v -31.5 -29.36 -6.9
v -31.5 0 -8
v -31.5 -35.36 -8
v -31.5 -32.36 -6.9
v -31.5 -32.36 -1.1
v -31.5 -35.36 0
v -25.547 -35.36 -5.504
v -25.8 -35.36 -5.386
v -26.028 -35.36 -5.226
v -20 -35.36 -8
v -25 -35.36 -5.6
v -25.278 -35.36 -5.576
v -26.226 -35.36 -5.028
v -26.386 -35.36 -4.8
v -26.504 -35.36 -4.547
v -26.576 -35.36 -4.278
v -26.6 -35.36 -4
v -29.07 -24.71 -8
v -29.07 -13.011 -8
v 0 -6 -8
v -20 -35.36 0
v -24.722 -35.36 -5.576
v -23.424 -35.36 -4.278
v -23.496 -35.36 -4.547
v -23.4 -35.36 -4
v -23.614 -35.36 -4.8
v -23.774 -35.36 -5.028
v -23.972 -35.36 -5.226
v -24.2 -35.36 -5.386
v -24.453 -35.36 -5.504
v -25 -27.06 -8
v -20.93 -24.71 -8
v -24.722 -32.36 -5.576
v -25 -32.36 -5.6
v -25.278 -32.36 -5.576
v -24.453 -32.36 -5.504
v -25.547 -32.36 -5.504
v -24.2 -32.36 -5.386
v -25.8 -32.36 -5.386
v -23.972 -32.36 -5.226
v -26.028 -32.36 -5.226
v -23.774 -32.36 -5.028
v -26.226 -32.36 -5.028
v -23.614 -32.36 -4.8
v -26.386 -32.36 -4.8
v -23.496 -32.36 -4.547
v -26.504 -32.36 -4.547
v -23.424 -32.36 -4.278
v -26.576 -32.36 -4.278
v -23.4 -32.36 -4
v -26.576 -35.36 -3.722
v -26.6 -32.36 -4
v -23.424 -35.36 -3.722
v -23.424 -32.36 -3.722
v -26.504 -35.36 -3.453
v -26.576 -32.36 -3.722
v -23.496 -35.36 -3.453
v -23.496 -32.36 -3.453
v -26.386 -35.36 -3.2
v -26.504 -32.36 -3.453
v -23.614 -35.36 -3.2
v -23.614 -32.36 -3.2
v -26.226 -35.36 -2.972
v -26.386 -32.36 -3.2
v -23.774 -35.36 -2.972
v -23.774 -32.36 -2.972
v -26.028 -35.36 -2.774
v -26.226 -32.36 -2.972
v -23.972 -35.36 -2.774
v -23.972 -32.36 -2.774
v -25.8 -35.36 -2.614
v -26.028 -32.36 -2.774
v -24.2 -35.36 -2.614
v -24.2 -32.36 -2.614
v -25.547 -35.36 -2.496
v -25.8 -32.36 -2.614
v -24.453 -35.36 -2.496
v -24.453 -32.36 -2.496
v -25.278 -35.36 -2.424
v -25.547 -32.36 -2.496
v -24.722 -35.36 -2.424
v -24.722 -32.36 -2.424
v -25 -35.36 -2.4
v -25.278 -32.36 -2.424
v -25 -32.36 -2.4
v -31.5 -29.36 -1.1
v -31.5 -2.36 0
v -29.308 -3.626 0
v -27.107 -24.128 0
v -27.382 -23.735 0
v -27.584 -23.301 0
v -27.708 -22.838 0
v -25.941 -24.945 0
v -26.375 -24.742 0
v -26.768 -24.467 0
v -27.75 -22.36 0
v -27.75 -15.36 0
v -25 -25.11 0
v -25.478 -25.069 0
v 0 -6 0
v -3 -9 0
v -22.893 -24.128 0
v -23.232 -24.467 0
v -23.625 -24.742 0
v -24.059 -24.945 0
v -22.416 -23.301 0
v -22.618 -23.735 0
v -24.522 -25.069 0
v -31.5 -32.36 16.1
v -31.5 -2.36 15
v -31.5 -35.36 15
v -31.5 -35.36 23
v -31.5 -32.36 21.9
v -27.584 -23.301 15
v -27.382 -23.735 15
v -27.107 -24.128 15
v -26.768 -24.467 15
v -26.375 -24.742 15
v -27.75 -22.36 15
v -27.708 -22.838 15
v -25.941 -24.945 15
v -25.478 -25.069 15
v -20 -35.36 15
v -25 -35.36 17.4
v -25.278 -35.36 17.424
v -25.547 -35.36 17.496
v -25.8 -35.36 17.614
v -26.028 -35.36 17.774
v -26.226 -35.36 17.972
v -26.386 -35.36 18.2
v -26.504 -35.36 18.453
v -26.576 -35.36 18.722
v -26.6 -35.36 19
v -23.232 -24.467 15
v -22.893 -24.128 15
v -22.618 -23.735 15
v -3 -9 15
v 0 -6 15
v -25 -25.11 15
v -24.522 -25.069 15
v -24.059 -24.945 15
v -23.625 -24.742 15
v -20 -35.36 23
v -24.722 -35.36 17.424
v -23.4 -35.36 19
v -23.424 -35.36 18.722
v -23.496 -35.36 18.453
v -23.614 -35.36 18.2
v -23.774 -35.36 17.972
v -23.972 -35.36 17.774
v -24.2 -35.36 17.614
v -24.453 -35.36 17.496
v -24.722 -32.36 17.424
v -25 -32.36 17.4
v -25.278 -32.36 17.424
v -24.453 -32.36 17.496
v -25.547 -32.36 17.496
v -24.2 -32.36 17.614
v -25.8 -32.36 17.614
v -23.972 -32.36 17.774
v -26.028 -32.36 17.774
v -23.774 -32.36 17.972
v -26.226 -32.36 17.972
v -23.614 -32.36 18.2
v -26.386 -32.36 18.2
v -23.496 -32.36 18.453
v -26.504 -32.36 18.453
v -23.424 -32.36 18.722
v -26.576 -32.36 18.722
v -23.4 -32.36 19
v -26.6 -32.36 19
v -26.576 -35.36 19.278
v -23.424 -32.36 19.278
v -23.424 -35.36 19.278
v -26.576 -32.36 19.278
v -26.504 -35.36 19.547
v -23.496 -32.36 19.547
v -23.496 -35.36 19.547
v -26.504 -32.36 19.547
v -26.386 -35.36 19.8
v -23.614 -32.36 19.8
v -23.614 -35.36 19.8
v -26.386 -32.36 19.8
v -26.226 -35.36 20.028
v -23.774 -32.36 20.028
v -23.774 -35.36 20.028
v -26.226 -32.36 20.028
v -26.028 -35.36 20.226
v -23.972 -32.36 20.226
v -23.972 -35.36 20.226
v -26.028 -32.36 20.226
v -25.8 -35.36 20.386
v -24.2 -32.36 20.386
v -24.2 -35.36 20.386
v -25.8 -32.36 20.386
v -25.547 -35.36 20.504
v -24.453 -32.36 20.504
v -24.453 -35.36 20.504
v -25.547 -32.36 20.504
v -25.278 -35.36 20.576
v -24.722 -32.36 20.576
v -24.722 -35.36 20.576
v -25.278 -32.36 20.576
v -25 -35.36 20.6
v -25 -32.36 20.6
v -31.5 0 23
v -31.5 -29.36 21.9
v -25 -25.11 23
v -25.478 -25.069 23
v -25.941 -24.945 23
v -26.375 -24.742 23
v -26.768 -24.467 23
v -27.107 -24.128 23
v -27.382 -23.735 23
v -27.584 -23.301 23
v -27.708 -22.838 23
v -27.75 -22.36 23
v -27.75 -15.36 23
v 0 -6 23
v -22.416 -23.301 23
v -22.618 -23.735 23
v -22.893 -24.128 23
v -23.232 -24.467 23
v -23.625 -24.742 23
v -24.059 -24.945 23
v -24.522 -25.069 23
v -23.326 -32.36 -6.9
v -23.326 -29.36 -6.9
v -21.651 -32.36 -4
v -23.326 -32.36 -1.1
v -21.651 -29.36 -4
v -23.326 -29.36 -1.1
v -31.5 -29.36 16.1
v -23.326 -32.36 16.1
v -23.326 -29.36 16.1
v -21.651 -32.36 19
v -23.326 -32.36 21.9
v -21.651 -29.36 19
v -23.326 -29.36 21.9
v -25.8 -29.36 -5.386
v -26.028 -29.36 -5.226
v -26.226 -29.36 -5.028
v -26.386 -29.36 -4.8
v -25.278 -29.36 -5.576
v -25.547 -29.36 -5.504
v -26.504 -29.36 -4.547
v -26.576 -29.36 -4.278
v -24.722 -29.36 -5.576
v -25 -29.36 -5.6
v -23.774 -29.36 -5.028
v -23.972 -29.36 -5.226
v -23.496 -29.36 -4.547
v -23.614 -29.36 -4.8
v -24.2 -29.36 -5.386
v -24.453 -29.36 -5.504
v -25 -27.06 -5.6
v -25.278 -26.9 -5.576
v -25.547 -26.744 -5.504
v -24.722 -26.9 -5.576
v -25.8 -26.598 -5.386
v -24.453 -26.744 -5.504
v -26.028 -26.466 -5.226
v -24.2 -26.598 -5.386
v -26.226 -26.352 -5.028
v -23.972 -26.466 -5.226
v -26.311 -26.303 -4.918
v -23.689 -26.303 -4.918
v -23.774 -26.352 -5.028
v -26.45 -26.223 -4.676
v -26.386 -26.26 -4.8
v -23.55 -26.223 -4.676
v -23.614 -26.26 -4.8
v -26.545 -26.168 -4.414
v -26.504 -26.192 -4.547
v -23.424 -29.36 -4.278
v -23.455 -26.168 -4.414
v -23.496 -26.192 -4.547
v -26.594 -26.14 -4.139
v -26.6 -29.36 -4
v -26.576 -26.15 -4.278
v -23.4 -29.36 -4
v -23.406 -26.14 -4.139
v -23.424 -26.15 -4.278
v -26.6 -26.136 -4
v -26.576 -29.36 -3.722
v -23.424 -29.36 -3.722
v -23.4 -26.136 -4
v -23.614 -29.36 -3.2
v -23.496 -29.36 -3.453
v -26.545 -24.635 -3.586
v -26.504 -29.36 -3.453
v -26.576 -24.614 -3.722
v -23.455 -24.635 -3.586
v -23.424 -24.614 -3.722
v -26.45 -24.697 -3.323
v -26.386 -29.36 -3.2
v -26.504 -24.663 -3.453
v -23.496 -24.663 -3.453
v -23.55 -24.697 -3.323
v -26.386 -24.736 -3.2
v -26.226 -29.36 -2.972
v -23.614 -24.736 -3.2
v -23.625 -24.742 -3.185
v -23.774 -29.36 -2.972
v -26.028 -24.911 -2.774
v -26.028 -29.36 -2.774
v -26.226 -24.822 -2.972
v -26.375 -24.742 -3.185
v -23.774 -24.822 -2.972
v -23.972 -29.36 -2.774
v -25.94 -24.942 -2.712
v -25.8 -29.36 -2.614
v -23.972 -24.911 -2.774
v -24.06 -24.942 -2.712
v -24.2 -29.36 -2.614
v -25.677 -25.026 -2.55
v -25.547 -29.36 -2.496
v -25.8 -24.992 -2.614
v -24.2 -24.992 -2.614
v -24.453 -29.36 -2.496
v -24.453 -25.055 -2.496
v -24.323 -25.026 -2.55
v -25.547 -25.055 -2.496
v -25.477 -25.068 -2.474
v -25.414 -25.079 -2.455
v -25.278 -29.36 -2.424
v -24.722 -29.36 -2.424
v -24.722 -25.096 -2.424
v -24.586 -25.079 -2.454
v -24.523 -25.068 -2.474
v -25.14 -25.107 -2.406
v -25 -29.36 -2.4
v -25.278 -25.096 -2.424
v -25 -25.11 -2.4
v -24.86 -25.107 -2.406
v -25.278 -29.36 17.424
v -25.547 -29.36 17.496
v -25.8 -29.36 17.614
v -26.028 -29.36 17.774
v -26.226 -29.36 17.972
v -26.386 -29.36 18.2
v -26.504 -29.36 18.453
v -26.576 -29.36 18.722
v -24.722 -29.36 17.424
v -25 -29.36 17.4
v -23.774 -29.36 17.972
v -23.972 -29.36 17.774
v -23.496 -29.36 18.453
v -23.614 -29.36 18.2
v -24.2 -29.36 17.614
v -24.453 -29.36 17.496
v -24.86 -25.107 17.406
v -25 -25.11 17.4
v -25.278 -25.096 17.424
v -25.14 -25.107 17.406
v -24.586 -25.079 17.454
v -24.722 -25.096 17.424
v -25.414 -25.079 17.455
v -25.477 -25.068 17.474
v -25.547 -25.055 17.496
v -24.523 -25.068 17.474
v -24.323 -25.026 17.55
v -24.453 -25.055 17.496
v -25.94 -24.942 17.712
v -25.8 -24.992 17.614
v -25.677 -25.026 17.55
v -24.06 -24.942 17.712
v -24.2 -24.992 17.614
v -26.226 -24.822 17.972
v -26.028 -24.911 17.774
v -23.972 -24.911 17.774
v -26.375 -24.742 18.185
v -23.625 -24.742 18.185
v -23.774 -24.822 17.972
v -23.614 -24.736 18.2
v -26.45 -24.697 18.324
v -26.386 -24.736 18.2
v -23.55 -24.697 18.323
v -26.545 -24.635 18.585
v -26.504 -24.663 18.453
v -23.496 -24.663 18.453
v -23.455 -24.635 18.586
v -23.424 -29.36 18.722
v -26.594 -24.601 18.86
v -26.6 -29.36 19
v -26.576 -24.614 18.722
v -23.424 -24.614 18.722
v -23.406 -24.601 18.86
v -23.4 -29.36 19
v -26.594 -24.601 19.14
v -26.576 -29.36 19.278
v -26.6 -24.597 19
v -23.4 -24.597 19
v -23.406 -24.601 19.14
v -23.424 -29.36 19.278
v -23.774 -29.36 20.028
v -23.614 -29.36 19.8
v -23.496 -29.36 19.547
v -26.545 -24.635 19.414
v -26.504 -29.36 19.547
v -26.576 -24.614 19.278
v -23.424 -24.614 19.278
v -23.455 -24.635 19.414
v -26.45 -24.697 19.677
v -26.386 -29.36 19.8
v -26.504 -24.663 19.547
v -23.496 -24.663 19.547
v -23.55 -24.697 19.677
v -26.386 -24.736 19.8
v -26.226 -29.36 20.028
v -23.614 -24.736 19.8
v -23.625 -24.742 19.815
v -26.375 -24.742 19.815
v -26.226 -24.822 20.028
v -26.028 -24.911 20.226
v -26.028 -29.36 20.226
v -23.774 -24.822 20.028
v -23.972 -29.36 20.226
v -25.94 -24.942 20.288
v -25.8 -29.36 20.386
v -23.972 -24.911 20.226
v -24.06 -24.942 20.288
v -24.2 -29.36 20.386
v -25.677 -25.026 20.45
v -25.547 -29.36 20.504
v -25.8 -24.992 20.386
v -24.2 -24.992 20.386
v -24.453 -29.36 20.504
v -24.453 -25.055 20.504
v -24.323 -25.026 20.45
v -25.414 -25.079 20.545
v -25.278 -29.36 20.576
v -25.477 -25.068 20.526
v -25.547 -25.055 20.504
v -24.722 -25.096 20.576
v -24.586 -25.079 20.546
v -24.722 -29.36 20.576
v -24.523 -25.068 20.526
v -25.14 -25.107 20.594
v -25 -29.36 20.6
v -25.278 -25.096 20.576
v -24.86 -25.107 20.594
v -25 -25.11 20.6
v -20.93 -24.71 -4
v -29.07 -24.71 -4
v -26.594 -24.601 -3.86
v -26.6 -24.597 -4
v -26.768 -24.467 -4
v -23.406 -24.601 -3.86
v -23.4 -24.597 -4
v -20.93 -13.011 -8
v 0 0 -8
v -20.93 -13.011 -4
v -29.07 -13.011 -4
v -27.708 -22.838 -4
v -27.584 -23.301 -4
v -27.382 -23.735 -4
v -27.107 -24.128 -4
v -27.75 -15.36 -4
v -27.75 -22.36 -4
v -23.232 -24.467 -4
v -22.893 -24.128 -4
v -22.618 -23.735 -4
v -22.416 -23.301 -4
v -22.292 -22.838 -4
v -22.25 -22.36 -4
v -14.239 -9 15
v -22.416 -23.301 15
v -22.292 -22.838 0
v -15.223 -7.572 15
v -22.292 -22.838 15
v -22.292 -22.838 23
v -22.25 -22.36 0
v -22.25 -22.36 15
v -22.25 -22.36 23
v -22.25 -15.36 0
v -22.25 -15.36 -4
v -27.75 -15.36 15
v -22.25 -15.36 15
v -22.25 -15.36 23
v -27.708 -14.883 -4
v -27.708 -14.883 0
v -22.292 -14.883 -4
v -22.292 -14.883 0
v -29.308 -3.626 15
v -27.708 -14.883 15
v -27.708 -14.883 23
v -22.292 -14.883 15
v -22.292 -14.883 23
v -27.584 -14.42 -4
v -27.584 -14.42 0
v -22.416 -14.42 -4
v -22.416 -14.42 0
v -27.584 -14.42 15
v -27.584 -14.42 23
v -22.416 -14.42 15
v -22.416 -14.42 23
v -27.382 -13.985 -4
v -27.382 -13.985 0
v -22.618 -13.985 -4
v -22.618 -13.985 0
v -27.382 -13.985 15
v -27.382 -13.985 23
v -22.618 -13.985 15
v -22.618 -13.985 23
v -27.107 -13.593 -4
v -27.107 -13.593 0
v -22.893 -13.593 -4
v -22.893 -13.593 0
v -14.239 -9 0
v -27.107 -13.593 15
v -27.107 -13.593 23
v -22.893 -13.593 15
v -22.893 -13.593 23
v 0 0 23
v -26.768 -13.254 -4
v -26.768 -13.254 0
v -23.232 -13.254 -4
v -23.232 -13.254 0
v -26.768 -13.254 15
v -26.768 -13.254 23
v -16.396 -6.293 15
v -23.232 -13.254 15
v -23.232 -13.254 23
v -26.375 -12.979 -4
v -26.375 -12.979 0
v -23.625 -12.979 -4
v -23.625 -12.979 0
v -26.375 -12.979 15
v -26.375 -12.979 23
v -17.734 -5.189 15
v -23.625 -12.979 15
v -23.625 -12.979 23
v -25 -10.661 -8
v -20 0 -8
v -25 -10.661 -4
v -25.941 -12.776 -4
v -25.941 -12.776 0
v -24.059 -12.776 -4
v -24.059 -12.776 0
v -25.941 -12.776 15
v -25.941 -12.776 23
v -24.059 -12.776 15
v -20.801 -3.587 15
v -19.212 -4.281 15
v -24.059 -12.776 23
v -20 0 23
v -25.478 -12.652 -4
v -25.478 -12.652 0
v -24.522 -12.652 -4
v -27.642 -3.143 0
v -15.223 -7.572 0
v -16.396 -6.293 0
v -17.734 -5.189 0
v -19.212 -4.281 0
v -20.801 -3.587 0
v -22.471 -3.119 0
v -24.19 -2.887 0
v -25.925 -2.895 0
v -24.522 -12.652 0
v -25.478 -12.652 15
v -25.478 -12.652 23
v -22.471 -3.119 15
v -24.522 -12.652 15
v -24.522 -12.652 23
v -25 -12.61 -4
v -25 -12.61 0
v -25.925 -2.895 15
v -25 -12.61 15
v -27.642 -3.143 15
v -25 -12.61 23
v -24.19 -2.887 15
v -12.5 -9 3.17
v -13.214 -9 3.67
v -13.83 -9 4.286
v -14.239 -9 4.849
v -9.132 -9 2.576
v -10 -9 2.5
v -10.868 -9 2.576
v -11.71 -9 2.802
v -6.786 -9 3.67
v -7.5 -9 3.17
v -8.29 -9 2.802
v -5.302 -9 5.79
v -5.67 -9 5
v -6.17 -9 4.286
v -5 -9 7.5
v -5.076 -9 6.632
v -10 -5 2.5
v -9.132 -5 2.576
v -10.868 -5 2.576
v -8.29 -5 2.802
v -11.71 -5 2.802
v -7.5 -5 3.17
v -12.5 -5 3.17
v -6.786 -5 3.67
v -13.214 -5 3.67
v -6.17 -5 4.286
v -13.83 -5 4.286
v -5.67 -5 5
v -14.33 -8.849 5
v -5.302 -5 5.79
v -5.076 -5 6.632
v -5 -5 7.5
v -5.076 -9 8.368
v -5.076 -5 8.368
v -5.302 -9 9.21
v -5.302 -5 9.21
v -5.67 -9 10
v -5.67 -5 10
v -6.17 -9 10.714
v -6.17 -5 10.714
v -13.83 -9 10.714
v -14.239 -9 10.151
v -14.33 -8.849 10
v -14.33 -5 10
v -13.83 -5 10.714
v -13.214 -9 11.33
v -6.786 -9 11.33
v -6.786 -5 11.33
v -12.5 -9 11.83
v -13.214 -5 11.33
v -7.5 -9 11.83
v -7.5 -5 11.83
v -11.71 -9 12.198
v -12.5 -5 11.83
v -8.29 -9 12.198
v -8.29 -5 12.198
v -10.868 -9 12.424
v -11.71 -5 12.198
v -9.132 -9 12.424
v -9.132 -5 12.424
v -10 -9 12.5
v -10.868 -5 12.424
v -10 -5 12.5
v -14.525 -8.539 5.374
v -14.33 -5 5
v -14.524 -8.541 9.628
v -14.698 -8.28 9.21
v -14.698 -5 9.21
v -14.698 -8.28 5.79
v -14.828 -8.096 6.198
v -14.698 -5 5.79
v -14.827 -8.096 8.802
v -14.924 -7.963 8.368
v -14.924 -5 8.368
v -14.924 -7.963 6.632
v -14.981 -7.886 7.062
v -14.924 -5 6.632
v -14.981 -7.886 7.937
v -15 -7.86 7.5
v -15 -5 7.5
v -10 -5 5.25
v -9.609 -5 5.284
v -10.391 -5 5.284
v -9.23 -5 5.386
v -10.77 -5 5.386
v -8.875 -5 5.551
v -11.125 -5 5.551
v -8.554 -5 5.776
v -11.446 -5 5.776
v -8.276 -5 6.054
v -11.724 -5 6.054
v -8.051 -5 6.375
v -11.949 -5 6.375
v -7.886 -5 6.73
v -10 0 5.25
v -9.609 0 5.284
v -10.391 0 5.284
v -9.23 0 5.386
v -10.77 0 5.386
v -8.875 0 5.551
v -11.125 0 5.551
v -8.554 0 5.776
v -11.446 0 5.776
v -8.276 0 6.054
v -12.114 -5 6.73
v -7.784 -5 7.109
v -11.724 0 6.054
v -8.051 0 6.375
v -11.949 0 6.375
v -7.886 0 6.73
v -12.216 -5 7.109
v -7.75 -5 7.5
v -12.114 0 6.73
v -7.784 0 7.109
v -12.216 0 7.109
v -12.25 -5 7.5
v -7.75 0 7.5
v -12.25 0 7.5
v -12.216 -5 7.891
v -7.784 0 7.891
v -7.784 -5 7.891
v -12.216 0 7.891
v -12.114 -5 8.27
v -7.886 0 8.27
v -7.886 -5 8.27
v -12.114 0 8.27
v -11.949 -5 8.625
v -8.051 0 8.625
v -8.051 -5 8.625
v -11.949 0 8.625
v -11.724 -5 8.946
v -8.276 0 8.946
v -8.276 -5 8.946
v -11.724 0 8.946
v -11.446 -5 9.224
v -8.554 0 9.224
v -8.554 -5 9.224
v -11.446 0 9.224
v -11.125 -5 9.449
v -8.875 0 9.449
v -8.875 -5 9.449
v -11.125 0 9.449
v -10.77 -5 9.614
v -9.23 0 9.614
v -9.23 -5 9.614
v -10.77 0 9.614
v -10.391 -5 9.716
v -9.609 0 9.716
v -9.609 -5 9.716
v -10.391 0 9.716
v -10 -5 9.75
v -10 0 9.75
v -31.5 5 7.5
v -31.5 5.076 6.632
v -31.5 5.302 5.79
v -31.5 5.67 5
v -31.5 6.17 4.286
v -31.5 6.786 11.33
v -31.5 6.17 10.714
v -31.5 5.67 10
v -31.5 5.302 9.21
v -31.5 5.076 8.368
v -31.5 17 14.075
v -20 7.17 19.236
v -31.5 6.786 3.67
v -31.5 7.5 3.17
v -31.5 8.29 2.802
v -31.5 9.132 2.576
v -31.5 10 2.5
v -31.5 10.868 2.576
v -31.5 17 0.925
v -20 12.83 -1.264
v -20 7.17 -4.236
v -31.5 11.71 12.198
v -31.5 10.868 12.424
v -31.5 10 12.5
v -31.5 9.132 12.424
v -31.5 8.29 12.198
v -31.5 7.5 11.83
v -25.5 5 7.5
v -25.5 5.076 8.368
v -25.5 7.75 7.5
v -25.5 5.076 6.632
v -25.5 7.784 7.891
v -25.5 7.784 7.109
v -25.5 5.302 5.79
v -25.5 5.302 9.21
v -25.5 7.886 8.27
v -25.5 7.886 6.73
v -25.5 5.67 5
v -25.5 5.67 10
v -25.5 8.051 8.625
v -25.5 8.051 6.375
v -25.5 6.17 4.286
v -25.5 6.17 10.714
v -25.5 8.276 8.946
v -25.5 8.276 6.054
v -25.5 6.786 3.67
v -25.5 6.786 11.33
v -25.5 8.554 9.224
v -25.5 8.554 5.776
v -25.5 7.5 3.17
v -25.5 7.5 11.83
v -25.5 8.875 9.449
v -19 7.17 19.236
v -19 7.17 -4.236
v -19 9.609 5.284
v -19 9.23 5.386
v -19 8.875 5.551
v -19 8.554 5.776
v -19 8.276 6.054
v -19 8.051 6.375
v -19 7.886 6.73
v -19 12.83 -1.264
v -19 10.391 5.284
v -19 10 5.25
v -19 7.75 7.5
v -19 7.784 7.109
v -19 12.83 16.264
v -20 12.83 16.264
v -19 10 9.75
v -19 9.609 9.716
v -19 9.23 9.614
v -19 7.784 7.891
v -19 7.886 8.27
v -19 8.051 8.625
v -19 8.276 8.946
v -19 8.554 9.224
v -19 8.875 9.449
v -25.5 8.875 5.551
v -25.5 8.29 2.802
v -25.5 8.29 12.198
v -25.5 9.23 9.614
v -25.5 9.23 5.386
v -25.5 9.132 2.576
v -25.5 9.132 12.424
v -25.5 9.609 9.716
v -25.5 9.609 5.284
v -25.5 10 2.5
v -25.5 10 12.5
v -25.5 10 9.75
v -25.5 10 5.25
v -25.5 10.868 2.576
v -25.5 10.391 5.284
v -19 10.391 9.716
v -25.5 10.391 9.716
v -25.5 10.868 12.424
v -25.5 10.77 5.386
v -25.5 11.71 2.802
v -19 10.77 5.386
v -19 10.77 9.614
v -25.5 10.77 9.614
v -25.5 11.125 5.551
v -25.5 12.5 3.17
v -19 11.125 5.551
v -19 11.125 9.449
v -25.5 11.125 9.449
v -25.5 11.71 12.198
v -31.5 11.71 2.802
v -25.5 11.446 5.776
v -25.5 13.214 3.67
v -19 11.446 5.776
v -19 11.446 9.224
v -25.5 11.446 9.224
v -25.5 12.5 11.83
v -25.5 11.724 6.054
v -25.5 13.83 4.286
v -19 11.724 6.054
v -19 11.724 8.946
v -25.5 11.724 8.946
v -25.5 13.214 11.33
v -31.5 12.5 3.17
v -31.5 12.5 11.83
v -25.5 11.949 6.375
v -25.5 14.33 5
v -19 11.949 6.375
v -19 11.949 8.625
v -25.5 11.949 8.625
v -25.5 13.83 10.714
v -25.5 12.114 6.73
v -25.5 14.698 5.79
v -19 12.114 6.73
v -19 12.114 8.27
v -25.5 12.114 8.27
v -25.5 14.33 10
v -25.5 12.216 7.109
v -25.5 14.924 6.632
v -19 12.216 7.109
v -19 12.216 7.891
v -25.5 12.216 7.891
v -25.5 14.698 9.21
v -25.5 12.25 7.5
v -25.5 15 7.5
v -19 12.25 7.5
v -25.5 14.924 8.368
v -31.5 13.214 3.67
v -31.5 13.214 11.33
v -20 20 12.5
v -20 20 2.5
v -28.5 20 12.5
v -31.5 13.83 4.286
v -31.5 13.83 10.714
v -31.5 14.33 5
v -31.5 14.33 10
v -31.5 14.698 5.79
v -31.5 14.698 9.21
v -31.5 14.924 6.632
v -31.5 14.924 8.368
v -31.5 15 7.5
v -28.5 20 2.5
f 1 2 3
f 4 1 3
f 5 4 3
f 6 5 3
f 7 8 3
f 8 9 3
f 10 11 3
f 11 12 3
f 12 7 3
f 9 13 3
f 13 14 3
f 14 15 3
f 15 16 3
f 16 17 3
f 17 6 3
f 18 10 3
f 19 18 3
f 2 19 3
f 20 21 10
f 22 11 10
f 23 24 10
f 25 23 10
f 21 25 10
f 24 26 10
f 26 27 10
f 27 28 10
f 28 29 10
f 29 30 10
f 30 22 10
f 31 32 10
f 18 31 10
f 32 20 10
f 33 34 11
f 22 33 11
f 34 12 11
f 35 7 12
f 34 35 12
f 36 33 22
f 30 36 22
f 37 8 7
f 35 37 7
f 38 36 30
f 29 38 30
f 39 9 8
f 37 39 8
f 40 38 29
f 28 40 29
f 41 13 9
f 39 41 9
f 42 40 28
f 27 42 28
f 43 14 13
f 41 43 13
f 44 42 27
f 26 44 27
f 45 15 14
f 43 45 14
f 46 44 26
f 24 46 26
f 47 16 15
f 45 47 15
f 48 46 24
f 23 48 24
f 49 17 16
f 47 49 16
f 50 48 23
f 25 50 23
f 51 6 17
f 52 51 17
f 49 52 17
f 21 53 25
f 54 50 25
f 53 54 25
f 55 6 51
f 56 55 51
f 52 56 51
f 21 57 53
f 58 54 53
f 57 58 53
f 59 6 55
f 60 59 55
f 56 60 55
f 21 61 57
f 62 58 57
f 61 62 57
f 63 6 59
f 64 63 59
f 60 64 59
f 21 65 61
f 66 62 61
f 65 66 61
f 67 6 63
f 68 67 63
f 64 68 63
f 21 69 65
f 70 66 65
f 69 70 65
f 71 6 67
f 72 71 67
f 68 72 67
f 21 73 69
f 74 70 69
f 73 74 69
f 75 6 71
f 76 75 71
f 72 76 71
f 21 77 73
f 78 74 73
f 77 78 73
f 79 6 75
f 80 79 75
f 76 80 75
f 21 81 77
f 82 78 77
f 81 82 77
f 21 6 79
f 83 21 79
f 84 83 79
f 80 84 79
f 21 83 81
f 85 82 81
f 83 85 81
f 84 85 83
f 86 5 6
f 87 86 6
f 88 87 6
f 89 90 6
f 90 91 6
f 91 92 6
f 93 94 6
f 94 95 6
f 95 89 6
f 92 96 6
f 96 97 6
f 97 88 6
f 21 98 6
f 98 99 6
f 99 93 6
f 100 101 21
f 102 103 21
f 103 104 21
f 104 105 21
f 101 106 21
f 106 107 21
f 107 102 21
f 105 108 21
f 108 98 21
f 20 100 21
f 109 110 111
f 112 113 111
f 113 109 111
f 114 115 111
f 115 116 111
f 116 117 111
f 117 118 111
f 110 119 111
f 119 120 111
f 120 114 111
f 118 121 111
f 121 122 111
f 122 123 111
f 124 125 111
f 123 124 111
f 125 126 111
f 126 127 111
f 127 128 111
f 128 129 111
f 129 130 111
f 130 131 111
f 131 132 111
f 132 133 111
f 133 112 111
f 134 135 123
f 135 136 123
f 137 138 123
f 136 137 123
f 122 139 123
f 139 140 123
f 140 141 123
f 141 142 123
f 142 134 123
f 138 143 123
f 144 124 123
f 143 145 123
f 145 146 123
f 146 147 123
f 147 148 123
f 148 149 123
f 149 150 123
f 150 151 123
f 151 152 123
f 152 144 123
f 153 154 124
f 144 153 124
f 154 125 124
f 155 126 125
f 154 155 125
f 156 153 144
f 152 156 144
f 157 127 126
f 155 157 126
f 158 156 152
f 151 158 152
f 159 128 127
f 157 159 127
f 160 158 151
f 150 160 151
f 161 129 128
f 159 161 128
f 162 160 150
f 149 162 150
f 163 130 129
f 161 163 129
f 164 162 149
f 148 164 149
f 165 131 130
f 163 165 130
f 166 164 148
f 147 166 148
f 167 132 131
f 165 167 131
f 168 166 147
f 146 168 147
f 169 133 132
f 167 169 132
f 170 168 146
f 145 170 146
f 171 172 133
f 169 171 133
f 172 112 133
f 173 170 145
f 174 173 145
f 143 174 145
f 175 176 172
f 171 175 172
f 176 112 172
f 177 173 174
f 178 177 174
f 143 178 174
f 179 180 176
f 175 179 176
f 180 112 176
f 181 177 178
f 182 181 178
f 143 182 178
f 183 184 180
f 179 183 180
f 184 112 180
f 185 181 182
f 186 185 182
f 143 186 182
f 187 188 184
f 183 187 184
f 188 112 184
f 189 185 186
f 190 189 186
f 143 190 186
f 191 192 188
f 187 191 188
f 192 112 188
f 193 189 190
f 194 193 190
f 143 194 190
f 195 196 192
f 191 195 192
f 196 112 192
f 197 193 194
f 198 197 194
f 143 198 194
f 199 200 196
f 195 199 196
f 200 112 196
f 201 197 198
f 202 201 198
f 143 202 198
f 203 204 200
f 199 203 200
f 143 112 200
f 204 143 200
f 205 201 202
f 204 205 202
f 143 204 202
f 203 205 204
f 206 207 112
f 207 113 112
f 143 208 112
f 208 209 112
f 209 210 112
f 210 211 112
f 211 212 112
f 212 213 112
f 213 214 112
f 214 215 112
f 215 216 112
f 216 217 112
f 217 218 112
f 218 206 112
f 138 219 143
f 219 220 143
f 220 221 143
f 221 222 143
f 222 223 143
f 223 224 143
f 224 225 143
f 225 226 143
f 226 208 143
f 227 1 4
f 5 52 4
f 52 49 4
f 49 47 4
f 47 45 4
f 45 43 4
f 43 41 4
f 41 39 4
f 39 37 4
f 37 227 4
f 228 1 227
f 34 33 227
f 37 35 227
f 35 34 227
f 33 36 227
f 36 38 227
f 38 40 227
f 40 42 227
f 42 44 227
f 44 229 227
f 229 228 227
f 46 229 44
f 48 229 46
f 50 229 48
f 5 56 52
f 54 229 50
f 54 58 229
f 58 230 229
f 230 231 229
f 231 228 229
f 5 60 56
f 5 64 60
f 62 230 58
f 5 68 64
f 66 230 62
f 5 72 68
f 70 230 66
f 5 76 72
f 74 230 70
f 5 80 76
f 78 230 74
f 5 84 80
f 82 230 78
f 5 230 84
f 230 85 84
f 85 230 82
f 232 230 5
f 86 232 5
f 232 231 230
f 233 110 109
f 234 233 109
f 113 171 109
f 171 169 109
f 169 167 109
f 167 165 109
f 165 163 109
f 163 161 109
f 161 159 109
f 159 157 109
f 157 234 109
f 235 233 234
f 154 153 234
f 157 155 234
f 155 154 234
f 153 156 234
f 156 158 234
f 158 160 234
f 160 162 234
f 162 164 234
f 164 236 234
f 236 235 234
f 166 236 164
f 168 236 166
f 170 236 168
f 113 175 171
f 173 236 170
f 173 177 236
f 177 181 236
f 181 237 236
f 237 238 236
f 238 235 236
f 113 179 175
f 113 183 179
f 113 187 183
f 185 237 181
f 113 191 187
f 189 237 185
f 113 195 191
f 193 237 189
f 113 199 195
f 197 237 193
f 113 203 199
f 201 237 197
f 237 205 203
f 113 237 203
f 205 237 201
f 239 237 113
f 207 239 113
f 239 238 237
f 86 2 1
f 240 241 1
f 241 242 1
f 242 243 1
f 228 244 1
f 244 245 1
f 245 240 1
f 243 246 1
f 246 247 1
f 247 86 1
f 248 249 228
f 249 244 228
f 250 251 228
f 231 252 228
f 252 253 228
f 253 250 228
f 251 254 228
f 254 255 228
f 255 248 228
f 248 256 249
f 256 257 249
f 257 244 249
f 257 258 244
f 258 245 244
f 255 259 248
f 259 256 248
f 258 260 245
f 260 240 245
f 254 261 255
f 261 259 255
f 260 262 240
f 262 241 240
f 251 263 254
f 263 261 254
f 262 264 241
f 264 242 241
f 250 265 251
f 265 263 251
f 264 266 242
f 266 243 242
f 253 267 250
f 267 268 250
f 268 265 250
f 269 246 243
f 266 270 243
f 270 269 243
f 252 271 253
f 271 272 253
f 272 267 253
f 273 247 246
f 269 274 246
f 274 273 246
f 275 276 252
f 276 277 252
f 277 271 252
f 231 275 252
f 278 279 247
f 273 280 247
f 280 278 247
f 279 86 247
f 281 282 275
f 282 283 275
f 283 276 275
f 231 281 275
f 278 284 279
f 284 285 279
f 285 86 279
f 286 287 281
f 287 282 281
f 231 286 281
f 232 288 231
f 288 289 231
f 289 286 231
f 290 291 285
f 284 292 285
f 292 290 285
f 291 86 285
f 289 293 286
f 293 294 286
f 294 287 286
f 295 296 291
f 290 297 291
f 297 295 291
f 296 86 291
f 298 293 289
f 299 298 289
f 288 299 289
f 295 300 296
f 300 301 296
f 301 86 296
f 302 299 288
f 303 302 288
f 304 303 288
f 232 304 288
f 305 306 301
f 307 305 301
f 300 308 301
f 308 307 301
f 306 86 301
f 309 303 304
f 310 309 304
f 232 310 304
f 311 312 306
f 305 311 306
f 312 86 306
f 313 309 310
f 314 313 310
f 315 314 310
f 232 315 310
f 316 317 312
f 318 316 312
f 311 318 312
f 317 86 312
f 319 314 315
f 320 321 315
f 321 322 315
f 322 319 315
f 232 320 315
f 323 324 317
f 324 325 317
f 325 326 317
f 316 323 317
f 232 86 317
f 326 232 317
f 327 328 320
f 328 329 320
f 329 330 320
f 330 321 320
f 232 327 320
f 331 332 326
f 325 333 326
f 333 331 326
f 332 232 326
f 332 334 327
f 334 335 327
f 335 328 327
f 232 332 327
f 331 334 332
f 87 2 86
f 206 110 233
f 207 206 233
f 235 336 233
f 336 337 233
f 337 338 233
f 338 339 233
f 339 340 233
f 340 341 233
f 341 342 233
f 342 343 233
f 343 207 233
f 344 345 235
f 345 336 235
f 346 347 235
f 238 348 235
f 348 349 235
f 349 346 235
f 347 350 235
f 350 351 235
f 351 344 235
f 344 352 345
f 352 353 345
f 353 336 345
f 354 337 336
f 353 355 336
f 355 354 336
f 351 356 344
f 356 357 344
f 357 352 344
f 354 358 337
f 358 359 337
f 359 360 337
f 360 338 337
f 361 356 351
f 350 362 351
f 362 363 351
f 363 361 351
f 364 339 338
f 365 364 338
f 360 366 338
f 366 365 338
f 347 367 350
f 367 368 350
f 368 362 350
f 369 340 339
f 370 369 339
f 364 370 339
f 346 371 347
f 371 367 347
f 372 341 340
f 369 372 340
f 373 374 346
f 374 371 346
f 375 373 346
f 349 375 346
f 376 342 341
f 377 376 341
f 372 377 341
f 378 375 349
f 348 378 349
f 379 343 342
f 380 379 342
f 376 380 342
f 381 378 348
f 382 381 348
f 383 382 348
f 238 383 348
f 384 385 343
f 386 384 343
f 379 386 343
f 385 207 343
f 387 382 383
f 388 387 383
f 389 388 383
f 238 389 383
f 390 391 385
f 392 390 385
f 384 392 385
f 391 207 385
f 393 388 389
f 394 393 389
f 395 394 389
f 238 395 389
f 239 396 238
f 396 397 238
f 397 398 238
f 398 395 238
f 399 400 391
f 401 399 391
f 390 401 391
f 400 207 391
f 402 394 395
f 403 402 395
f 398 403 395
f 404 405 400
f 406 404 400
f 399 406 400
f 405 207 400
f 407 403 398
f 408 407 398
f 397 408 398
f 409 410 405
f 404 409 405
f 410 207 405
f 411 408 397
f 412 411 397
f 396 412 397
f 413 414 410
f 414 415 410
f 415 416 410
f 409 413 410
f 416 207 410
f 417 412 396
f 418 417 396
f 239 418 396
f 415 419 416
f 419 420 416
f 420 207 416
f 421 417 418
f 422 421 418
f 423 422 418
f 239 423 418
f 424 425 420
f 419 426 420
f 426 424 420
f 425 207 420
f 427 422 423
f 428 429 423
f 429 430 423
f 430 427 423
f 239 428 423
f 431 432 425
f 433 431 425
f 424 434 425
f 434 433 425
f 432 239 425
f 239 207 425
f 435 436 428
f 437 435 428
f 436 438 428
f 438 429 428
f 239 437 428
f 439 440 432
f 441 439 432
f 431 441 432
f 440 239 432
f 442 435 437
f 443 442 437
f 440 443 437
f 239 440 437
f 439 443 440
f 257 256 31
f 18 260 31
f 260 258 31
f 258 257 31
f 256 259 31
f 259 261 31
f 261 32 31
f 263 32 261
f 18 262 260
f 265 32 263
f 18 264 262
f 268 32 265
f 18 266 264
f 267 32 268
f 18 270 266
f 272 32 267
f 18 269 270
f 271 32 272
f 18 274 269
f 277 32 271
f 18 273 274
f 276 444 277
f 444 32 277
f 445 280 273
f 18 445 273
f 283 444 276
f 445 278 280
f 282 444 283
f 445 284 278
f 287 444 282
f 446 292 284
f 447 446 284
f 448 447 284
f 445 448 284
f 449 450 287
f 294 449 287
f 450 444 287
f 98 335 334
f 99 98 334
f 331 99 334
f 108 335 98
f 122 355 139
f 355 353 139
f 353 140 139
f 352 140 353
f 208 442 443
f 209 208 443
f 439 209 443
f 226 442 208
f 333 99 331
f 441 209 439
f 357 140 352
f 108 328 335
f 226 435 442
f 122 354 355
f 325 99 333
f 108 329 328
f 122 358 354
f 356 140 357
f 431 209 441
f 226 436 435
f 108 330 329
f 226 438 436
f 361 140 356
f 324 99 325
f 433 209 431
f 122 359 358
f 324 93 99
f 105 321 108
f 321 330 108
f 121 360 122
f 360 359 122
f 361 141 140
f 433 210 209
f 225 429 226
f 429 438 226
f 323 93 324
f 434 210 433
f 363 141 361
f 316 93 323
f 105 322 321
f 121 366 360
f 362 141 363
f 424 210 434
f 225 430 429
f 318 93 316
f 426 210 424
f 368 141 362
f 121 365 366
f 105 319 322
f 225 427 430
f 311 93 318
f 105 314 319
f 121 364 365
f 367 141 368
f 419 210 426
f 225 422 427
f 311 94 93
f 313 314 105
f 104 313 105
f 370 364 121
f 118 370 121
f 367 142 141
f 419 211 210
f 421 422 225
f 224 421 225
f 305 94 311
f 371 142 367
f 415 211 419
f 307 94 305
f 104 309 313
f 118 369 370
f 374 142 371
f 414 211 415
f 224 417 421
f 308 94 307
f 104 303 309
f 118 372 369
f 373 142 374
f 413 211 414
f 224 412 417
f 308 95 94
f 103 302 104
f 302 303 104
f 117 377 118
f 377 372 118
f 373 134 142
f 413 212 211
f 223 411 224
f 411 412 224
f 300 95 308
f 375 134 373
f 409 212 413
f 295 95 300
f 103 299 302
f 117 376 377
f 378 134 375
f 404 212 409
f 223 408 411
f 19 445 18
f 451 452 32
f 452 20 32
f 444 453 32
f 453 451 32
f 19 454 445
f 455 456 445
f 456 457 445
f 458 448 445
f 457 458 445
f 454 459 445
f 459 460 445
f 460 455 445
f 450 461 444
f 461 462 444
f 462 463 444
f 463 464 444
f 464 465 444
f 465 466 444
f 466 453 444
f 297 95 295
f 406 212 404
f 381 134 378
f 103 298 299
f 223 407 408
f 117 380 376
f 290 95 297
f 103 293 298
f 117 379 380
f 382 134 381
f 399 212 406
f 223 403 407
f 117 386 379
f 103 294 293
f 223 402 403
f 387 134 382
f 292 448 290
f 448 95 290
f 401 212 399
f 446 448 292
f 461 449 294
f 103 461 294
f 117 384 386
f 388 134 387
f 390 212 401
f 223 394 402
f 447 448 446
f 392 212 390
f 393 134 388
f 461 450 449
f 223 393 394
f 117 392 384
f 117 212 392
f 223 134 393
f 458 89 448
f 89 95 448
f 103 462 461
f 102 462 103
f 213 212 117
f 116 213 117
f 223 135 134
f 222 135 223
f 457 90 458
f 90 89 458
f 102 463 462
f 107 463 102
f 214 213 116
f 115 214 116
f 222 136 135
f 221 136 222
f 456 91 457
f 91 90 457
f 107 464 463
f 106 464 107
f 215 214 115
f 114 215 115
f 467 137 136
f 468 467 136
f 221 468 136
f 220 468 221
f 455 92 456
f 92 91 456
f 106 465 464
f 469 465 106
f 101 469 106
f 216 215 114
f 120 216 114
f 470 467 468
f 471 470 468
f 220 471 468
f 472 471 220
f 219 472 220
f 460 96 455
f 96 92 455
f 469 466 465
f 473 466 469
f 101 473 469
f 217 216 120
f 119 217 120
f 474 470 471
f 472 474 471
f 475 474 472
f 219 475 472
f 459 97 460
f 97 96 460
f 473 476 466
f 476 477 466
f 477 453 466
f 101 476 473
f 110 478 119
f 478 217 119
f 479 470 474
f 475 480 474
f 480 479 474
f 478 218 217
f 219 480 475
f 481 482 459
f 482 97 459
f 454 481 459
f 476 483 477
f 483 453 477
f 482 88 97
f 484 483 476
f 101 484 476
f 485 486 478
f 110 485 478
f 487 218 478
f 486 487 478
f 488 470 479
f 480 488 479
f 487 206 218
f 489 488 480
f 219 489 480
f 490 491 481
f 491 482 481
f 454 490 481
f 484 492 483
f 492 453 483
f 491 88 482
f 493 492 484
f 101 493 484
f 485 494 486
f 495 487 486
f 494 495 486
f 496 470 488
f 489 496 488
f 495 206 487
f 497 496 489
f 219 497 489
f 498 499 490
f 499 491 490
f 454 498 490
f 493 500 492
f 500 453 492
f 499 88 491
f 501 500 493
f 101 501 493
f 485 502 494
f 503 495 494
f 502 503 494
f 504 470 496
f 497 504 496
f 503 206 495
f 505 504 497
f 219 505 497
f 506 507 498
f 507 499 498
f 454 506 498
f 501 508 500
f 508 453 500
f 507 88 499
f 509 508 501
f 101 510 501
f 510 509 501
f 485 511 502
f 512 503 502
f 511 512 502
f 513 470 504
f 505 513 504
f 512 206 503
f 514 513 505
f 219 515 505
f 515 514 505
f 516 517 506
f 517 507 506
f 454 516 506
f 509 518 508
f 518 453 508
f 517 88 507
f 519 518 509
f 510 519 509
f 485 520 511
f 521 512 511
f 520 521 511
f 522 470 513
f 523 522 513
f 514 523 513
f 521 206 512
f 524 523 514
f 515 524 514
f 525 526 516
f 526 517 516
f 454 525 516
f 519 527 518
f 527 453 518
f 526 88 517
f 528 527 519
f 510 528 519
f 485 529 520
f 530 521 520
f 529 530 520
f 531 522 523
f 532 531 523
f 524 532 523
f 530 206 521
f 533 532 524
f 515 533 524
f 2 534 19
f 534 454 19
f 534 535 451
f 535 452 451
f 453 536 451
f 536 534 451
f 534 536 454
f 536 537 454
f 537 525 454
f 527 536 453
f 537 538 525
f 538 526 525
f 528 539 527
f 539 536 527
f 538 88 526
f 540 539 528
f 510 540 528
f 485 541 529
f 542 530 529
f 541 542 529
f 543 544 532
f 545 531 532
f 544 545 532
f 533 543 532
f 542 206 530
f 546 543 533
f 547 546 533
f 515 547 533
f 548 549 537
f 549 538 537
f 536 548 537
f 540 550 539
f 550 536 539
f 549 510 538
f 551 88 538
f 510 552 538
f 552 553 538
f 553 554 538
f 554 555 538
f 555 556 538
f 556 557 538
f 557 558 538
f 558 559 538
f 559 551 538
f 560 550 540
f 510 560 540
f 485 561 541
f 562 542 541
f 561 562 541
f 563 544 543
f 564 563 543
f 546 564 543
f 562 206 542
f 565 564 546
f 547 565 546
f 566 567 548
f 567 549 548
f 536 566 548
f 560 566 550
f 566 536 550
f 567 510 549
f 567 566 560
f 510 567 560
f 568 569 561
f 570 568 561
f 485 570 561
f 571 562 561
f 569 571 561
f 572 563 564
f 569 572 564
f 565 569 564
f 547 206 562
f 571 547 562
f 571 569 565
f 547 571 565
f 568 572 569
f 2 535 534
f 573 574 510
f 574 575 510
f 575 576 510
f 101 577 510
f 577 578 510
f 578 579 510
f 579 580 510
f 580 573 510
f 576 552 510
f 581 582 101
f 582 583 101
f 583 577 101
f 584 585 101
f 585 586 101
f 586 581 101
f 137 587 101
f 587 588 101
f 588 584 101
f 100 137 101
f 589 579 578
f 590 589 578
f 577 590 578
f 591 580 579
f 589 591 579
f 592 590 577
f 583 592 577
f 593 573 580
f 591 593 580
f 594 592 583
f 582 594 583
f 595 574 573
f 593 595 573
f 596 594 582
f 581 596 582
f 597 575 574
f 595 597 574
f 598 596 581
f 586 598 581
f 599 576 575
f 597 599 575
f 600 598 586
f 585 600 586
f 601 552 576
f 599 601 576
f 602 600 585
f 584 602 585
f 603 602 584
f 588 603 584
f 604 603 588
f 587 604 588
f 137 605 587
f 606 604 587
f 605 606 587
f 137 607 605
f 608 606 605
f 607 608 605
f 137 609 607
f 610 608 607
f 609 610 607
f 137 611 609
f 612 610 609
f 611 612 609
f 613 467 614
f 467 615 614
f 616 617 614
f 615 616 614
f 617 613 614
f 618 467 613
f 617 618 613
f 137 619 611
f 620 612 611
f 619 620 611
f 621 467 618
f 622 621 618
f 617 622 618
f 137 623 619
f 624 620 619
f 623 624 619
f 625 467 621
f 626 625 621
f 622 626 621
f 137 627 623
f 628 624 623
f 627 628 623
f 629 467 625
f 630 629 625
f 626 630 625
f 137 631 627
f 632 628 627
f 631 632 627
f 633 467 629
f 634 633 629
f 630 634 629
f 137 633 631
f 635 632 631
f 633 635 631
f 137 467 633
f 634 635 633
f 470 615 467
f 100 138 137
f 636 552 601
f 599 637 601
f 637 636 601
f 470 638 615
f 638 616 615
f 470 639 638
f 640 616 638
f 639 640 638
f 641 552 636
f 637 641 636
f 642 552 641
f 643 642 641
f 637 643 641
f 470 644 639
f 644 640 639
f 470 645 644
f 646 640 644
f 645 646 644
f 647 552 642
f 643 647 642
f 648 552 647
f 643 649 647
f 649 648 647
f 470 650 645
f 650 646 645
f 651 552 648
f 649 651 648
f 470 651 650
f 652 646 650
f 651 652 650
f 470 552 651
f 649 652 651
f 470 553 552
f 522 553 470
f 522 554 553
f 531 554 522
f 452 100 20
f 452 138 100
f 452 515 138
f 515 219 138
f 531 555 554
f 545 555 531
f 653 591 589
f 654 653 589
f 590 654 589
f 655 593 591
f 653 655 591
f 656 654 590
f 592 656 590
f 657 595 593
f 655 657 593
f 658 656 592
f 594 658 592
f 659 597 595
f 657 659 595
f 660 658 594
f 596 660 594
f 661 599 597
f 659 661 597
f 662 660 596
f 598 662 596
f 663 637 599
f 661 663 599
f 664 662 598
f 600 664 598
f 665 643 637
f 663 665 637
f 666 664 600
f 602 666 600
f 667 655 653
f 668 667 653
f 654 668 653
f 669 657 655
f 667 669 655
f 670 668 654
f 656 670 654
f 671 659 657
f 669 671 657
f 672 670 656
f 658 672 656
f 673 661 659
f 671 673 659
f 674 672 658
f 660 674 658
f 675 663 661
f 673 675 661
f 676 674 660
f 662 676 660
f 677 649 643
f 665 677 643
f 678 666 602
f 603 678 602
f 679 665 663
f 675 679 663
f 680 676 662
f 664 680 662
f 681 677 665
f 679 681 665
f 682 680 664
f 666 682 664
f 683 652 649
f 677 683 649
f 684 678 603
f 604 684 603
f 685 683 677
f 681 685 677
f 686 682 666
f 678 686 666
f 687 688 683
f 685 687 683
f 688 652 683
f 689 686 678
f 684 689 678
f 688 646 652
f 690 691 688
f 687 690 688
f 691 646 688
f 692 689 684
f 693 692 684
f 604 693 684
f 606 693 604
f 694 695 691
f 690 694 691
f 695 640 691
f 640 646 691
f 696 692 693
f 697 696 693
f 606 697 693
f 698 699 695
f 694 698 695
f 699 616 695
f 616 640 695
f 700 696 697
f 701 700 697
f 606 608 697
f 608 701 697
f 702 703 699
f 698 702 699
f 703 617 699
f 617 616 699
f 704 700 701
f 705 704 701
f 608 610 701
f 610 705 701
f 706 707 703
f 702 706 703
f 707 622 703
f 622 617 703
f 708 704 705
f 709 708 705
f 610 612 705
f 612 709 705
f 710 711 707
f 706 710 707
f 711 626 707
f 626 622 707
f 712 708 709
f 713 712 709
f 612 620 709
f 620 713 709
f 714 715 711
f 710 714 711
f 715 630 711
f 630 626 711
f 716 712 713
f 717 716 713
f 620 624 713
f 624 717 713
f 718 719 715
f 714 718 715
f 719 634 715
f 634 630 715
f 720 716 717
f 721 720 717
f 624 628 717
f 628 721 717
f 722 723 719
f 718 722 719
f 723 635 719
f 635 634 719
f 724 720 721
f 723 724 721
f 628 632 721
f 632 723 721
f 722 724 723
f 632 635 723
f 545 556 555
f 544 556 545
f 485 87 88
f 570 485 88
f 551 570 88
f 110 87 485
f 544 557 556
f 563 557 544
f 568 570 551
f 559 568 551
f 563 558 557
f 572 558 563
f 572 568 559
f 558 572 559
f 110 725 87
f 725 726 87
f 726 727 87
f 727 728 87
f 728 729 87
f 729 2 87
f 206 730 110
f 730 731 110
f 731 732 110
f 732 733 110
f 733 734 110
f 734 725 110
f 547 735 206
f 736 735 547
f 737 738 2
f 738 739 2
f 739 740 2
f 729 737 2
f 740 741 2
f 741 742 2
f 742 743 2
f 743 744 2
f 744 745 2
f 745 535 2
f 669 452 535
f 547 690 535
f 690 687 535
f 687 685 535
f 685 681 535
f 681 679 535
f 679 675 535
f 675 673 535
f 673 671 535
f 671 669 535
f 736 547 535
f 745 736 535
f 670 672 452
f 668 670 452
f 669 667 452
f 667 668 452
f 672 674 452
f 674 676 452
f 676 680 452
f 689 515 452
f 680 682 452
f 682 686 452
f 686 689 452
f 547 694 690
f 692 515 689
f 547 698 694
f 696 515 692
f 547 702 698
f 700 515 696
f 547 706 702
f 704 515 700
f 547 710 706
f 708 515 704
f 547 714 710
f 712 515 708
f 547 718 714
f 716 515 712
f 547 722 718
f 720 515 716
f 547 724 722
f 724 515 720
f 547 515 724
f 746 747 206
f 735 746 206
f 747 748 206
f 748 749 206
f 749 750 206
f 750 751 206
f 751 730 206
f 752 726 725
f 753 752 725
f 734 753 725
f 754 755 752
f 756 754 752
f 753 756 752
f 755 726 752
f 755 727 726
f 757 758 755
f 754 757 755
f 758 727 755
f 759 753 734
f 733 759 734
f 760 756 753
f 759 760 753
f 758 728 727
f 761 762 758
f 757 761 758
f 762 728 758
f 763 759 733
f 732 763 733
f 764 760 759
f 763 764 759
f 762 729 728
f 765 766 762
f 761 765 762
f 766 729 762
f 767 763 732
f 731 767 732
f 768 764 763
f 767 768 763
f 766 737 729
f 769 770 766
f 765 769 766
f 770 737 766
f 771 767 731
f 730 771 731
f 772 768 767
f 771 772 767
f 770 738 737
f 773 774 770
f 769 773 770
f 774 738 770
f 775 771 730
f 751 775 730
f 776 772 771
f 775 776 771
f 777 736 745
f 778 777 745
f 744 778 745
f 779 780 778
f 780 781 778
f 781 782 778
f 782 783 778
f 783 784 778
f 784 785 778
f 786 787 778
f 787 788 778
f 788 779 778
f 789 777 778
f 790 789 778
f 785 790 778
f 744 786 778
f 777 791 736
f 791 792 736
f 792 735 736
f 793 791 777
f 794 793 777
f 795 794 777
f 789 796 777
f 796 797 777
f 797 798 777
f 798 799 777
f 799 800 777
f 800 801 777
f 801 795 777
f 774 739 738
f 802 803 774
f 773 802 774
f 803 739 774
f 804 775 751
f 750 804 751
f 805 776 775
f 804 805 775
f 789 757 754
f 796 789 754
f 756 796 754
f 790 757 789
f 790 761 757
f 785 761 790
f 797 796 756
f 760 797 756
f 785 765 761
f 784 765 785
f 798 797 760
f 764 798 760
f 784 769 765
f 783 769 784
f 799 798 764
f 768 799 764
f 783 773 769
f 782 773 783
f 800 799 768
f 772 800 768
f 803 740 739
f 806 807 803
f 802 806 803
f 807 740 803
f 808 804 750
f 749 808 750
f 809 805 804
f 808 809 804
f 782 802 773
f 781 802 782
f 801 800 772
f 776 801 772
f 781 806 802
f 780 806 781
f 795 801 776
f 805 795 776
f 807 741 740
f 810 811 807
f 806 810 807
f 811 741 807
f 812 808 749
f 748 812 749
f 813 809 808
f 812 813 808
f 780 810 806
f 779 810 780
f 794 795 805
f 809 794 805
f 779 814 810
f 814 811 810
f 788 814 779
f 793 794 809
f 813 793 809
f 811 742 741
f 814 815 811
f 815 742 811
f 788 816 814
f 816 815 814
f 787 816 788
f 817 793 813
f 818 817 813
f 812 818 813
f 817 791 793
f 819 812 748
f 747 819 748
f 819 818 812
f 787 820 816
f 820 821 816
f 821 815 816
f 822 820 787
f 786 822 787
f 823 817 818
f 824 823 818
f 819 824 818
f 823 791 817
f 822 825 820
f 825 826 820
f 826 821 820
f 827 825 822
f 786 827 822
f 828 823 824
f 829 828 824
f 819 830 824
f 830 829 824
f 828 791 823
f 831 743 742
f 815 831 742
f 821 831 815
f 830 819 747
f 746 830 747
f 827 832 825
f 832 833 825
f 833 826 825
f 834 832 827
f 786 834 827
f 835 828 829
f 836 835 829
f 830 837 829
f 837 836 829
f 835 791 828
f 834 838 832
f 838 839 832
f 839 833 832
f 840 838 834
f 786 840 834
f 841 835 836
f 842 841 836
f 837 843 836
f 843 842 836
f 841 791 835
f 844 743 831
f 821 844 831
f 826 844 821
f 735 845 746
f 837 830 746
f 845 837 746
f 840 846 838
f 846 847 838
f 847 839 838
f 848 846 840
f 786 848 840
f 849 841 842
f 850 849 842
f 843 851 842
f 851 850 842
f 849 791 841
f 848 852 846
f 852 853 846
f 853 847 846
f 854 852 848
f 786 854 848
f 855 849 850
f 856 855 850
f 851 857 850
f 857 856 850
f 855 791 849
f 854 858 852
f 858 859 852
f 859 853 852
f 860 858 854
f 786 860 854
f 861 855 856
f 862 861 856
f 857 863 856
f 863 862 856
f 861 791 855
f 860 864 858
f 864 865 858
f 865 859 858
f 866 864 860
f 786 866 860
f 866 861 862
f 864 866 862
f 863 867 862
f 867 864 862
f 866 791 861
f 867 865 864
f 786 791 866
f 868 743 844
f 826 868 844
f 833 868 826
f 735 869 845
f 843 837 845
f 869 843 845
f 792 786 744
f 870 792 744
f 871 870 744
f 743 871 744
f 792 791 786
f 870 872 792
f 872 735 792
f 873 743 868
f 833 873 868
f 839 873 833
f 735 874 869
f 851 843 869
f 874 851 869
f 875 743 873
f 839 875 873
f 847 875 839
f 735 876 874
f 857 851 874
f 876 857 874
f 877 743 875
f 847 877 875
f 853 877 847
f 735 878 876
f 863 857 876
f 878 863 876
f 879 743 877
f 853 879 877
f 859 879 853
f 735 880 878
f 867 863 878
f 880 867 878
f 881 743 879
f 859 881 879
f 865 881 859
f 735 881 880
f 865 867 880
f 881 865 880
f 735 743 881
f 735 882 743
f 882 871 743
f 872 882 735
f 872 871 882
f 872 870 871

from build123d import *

# Parameters (mm, degrees)
RESSALTO_EXTRUS_O1_DEPTH   = 15
ESBO_O2_R                  = 2.25
CORTE_EXTRUS_O1_DEPTH      = 41.215045787
CORTE_EXTRUS_O2_DEPTH      = 46.367938746
CORTE_EXTRUS_O2_DEPTH_BACK = 46.367938746
ESBO_O3_R                  = 2.25
RESSALTO_EXTRUS_O2_DEPTH   = 8
CORTE_EXTRUS_O3_DEPTH      = 4
CORTE_EXTRUS_O4_REACH      = 69.72
CORTE_EXTRUS_O4_END_RADIUS = 2.75
ESBO_O6_R                  = 1.6
CORTE_EXTRUS_O5_DEPTH      = 3
ESBO_O8_R                  = 12.5
CORTE_EXTRUS_O6_DEPTH      = 15
CORTE_EXTRUS_O7_DEPTH      = 53.646110388
CORTE_EXTRUS_O7_DEPTH_BACK = 53.646110388
ESBO_O10_R                 = 5
CORTE_EXTRUS_O8_DEPTH      = 6
ESBO_O11_R                 = 5
CORTE_EXTRUS_O9_DEPTH      = 4


with BuildPart() as part:
    # Esboço1 → Ressalto-extrusão1 (new body)
    with BuildSketch(Plane.XY):
        Polygon((-28.499998137, 19.99999769), (-31.5, 16.99999769), (-31.5, -2.360471354), (-19.999999046, -9), (-3, -9), (0, -6), (0, 0), (-19.999999046, 0), (-19.999999046, 7.17), (-18.999999046, 7.17), (-18.999999046, 12.82999769), (-19.999999046, 12.82999769), (-19.999999046, 19.99999769), align=None)
    extrude(amount=RESSALTO_EXTRUS_O1_DEPTH)

    # Esboço2 → Corte-extrusão1 (cut, through all)
    with BuildSketch(Plane.ZY.offset(31.5)):
        with Locations((7.5, 9.99999769)):
            Circle(ESBO_O2_R)
    extrude(amount=-CORTE_EXTRUS_O1_DEPTH, mode=Mode.SUBTRACT)

    # Esboço3 → Corte-extrusão2 (cut, two sides: drawn at the far end of the back side and taken through both)
    with BuildSketch(Plane.XZ.offset(9).offset(-CORTE_EXTRUS_O2_DEPTH_BACK)):
        with Locations(Location((-9.999999046, 7.5, 0), (0, 0, 270))):
            Circle(ESBO_O3_R)
    extrude(amount=CORTE_EXTRUS_O2_DEPTH + CORTE_EXTRUS_O2_DEPTH_BACK, mode=Mode.SUBTRACT)

    # Esboço4 → Ressalto-extrusão2 (add)
    # profile 1 of 2: a face of its own
    with BuildSketch(Plane.XY.offset(15)):
        Polygon((-19.999999046, -9), (-31.5, -2.360471354), (-31.5, -35.360471354), (-19.999999046, -35.360471354), (0, -6), (-3, -9), align=None)
        with BuildLine():
            ThreePointArc((-22.25, -22.360471354), (-25, -25.110471354), (-27.75, -22.360471354))
            Line((-27.75, -22.360471354), (-27.75, -15.360471354))
            ThreePointArc((-27.75, -15.360471354), (-25, -12.610471354), (-22.25, -15.360471354))
            Line((-22.25, -15.360471354), (-22.25, -22.360471354))
        make_face(mode=Mode.SUBTRACT)
    # profile 2 of 2: a face of its own
    with BuildSketch(Plane.XY.offset(15)):
        Polygon((-31.5, 16.99999769), (-31.5, -2.360471354), (-19.999999046, -9), (-3, -9), (0, -6), (0, 0), (-19.999999046, 0), (-19.999999046, 7.17), (-18.999999046, 7.17), (-18.999999046, 12.82999769), (-19.999999046, 12.82999769), (-19.999999046, 19.99999769), (-28.499998137, 19.99999769), align=None)
    ressalto_extrus_o2 = extrude(amount=RESSALTO_EXTRUS_O2_DEPTH)

    # Espelhar1: Ressalto-extrusão2 across plane
    add(ressalto_extrus_o2.mirror(Plane.XY.offset(7.5)))

    # Esboço5 → Corte-extrusão3 (cut)
    with BuildSketch(Plane(origin=(0, 0, -8), x_dir=(-1, 0, 0), z_dir=(0, 0, -1))):
        Polygon((20.93, -17.9), (20.93, -24.710286949), (25, -27.060102545), (29.07, -24.710286949), (29.07, -17.9), (29.07, -13.010655758), (25, -10.660840163), (20.93, -13.010655758), align=None)
        with BuildLine():
            Line((22.25, -22.360471354), (22.25, -15.360471354))
            ThreePointArc((22.25, -15.360471354), (25, -12.610471354), (27.75, -15.360471354))
            Line((27.75, -15.360471354), (27.75, -22.360471354))
            ThreePointArc((27.75, -22.360471354), (25, -25.110471354), (22.25, -22.360471354))
        make_face(mode=Mode.SUBTRACT)
    extrude(amount=-CORTE_EXTRUS_O3_DEPTH, mode=Mode.SUBTRACT)

    # Corte-extrusão4: up to this cylinder (the profile starts outside it)
    corte_extrus_o4_end = Plane(origin=(-25, -22.360471354, 7.5), z_dir=(0, 0, -1)) * Cylinder(CORTE_EXTRUS_O4_END_RADIUS, 168.94, mode=Mode.PRIVATE)
    # Esboço6 → Corte-extrusão4 (cut, up to the surface)
    with BuildSketch(Plane.XZ.offset(35.360471354), mode=Mode.PRIVATE) as corte_extrus_o4_sk1:
        with Locations(Location((-25, 19, 0), (0, 0, 270))):
            Circle(ESBO_O6_R)
    corte_extrus_o4_tool1 = extrude(corte_extrus_o4_sk1.sketch, amount=-CORTE_EXTRUS_O4_REACH, mode=Mode.PRIVATE) - corte_extrus_o4_end
    add(corte_extrus_o4_tool1.solids().sort_by_distance((-25, -35.360471, 19))[0], mode=Mode.SUBTRACT)
    # Esboço6 → Corte-extrusão4 (cut, up to the surface)
    with BuildSketch(Plane.XZ.offset(35.360471354), mode=Mode.PRIVATE) as corte_extrus_o4_sk2:
        with Locations(Location((-25, -4, 0), (0, 0, 270))):
            Circle(ESBO_O6_R)
    corte_extrus_o4_tool2 = extrude(corte_extrus_o4_sk2.sketch, amount=-CORTE_EXTRUS_O4_REACH, mode=Mode.PRIVATE) - corte_extrus_o4_end
    add(corte_extrus_o4_tool2.solids().sort_by_distance((-25, -35.360471, -4))[0], mode=Mode.SUBTRACT)

    # Esboço7 → Corte-extrusão5 (cut)
    with BuildSketch(Plane(origin=(0, -32.360471354, 0), x_dir=(-1, 0, 0), z_dir=(0, -1, 0))):
        Polygon((26.674315781, -21.9), (33, -21.9), (33, -16.1), (26.674315781, -16.1), (23.325684219, -16.1), (21.651368439, -19), (23.325684219, -21.9), align=None)
        Polygon((26.674315781, 6.9), (23.325684219, 6.9), (21.651368439, 4), (23.325684219, 1.1), (26.674315781, 1.1), (33, 1.1), (33, 6.9), align=None)
    extrude(amount=-CORTE_EXTRUS_O5_DEPTH, mode=Mode.SUBTRACT)

    # Esboço8 → Corte-extrusão6 (cut)
    with BuildSketch(Plane.XY):
        with Locations((-25, -15.360471354)):
            Circle(ESBO_O8_R)
    extrude(amount=CORTE_EXTRUS_O6_DEPTH, mode=Mode.SUBTRACT)

    # Esboço9 → Corte-extrusão7 (cut, two sides: drawn at the far end of the back side and taken through both)
    with BuildSketch(Plane.ZY.offset(31.5).offset(-CORTE_EXTRUS_O7_DEPTH_BACK)):
        Polygon((-8, 0), (2.5, 19.99999769), (12.5, 19.99999769), (23, 0), (23, 29.458791051), (-8, 29.458791051), align=None)
    extrude(amount=CORTE_EXTRUS_O7_DEPTH + CORTE_EXTRUS_O7_DEPTH_BACK, mode=Mode.SUBTRACT)

    # Esboço10 → Corte-extrusão8 (cut)
    with BuildSketch(Plane.ZY.offset(31.5)):
        with Locations((7.5, 9.99999769)):
            Circle(ESBO_O10_R)
    extrude(amount=-CORTE_EXTRUS_O8_DEPTH, mode=Mode.SUBTRACT)

    # Esboço11 → Corte-extrusão9 (cut)
    with BuildSketch(Plane.XZ.offset(9)):
        with Locations((-9.999999046, 7.5)):
            Circle(ESBO_O11_R)
    extrude(amount=-CORTE_EXTRUS_O9_DEPTH, mode=Mode.SUBTRACT)


solid = part.part
